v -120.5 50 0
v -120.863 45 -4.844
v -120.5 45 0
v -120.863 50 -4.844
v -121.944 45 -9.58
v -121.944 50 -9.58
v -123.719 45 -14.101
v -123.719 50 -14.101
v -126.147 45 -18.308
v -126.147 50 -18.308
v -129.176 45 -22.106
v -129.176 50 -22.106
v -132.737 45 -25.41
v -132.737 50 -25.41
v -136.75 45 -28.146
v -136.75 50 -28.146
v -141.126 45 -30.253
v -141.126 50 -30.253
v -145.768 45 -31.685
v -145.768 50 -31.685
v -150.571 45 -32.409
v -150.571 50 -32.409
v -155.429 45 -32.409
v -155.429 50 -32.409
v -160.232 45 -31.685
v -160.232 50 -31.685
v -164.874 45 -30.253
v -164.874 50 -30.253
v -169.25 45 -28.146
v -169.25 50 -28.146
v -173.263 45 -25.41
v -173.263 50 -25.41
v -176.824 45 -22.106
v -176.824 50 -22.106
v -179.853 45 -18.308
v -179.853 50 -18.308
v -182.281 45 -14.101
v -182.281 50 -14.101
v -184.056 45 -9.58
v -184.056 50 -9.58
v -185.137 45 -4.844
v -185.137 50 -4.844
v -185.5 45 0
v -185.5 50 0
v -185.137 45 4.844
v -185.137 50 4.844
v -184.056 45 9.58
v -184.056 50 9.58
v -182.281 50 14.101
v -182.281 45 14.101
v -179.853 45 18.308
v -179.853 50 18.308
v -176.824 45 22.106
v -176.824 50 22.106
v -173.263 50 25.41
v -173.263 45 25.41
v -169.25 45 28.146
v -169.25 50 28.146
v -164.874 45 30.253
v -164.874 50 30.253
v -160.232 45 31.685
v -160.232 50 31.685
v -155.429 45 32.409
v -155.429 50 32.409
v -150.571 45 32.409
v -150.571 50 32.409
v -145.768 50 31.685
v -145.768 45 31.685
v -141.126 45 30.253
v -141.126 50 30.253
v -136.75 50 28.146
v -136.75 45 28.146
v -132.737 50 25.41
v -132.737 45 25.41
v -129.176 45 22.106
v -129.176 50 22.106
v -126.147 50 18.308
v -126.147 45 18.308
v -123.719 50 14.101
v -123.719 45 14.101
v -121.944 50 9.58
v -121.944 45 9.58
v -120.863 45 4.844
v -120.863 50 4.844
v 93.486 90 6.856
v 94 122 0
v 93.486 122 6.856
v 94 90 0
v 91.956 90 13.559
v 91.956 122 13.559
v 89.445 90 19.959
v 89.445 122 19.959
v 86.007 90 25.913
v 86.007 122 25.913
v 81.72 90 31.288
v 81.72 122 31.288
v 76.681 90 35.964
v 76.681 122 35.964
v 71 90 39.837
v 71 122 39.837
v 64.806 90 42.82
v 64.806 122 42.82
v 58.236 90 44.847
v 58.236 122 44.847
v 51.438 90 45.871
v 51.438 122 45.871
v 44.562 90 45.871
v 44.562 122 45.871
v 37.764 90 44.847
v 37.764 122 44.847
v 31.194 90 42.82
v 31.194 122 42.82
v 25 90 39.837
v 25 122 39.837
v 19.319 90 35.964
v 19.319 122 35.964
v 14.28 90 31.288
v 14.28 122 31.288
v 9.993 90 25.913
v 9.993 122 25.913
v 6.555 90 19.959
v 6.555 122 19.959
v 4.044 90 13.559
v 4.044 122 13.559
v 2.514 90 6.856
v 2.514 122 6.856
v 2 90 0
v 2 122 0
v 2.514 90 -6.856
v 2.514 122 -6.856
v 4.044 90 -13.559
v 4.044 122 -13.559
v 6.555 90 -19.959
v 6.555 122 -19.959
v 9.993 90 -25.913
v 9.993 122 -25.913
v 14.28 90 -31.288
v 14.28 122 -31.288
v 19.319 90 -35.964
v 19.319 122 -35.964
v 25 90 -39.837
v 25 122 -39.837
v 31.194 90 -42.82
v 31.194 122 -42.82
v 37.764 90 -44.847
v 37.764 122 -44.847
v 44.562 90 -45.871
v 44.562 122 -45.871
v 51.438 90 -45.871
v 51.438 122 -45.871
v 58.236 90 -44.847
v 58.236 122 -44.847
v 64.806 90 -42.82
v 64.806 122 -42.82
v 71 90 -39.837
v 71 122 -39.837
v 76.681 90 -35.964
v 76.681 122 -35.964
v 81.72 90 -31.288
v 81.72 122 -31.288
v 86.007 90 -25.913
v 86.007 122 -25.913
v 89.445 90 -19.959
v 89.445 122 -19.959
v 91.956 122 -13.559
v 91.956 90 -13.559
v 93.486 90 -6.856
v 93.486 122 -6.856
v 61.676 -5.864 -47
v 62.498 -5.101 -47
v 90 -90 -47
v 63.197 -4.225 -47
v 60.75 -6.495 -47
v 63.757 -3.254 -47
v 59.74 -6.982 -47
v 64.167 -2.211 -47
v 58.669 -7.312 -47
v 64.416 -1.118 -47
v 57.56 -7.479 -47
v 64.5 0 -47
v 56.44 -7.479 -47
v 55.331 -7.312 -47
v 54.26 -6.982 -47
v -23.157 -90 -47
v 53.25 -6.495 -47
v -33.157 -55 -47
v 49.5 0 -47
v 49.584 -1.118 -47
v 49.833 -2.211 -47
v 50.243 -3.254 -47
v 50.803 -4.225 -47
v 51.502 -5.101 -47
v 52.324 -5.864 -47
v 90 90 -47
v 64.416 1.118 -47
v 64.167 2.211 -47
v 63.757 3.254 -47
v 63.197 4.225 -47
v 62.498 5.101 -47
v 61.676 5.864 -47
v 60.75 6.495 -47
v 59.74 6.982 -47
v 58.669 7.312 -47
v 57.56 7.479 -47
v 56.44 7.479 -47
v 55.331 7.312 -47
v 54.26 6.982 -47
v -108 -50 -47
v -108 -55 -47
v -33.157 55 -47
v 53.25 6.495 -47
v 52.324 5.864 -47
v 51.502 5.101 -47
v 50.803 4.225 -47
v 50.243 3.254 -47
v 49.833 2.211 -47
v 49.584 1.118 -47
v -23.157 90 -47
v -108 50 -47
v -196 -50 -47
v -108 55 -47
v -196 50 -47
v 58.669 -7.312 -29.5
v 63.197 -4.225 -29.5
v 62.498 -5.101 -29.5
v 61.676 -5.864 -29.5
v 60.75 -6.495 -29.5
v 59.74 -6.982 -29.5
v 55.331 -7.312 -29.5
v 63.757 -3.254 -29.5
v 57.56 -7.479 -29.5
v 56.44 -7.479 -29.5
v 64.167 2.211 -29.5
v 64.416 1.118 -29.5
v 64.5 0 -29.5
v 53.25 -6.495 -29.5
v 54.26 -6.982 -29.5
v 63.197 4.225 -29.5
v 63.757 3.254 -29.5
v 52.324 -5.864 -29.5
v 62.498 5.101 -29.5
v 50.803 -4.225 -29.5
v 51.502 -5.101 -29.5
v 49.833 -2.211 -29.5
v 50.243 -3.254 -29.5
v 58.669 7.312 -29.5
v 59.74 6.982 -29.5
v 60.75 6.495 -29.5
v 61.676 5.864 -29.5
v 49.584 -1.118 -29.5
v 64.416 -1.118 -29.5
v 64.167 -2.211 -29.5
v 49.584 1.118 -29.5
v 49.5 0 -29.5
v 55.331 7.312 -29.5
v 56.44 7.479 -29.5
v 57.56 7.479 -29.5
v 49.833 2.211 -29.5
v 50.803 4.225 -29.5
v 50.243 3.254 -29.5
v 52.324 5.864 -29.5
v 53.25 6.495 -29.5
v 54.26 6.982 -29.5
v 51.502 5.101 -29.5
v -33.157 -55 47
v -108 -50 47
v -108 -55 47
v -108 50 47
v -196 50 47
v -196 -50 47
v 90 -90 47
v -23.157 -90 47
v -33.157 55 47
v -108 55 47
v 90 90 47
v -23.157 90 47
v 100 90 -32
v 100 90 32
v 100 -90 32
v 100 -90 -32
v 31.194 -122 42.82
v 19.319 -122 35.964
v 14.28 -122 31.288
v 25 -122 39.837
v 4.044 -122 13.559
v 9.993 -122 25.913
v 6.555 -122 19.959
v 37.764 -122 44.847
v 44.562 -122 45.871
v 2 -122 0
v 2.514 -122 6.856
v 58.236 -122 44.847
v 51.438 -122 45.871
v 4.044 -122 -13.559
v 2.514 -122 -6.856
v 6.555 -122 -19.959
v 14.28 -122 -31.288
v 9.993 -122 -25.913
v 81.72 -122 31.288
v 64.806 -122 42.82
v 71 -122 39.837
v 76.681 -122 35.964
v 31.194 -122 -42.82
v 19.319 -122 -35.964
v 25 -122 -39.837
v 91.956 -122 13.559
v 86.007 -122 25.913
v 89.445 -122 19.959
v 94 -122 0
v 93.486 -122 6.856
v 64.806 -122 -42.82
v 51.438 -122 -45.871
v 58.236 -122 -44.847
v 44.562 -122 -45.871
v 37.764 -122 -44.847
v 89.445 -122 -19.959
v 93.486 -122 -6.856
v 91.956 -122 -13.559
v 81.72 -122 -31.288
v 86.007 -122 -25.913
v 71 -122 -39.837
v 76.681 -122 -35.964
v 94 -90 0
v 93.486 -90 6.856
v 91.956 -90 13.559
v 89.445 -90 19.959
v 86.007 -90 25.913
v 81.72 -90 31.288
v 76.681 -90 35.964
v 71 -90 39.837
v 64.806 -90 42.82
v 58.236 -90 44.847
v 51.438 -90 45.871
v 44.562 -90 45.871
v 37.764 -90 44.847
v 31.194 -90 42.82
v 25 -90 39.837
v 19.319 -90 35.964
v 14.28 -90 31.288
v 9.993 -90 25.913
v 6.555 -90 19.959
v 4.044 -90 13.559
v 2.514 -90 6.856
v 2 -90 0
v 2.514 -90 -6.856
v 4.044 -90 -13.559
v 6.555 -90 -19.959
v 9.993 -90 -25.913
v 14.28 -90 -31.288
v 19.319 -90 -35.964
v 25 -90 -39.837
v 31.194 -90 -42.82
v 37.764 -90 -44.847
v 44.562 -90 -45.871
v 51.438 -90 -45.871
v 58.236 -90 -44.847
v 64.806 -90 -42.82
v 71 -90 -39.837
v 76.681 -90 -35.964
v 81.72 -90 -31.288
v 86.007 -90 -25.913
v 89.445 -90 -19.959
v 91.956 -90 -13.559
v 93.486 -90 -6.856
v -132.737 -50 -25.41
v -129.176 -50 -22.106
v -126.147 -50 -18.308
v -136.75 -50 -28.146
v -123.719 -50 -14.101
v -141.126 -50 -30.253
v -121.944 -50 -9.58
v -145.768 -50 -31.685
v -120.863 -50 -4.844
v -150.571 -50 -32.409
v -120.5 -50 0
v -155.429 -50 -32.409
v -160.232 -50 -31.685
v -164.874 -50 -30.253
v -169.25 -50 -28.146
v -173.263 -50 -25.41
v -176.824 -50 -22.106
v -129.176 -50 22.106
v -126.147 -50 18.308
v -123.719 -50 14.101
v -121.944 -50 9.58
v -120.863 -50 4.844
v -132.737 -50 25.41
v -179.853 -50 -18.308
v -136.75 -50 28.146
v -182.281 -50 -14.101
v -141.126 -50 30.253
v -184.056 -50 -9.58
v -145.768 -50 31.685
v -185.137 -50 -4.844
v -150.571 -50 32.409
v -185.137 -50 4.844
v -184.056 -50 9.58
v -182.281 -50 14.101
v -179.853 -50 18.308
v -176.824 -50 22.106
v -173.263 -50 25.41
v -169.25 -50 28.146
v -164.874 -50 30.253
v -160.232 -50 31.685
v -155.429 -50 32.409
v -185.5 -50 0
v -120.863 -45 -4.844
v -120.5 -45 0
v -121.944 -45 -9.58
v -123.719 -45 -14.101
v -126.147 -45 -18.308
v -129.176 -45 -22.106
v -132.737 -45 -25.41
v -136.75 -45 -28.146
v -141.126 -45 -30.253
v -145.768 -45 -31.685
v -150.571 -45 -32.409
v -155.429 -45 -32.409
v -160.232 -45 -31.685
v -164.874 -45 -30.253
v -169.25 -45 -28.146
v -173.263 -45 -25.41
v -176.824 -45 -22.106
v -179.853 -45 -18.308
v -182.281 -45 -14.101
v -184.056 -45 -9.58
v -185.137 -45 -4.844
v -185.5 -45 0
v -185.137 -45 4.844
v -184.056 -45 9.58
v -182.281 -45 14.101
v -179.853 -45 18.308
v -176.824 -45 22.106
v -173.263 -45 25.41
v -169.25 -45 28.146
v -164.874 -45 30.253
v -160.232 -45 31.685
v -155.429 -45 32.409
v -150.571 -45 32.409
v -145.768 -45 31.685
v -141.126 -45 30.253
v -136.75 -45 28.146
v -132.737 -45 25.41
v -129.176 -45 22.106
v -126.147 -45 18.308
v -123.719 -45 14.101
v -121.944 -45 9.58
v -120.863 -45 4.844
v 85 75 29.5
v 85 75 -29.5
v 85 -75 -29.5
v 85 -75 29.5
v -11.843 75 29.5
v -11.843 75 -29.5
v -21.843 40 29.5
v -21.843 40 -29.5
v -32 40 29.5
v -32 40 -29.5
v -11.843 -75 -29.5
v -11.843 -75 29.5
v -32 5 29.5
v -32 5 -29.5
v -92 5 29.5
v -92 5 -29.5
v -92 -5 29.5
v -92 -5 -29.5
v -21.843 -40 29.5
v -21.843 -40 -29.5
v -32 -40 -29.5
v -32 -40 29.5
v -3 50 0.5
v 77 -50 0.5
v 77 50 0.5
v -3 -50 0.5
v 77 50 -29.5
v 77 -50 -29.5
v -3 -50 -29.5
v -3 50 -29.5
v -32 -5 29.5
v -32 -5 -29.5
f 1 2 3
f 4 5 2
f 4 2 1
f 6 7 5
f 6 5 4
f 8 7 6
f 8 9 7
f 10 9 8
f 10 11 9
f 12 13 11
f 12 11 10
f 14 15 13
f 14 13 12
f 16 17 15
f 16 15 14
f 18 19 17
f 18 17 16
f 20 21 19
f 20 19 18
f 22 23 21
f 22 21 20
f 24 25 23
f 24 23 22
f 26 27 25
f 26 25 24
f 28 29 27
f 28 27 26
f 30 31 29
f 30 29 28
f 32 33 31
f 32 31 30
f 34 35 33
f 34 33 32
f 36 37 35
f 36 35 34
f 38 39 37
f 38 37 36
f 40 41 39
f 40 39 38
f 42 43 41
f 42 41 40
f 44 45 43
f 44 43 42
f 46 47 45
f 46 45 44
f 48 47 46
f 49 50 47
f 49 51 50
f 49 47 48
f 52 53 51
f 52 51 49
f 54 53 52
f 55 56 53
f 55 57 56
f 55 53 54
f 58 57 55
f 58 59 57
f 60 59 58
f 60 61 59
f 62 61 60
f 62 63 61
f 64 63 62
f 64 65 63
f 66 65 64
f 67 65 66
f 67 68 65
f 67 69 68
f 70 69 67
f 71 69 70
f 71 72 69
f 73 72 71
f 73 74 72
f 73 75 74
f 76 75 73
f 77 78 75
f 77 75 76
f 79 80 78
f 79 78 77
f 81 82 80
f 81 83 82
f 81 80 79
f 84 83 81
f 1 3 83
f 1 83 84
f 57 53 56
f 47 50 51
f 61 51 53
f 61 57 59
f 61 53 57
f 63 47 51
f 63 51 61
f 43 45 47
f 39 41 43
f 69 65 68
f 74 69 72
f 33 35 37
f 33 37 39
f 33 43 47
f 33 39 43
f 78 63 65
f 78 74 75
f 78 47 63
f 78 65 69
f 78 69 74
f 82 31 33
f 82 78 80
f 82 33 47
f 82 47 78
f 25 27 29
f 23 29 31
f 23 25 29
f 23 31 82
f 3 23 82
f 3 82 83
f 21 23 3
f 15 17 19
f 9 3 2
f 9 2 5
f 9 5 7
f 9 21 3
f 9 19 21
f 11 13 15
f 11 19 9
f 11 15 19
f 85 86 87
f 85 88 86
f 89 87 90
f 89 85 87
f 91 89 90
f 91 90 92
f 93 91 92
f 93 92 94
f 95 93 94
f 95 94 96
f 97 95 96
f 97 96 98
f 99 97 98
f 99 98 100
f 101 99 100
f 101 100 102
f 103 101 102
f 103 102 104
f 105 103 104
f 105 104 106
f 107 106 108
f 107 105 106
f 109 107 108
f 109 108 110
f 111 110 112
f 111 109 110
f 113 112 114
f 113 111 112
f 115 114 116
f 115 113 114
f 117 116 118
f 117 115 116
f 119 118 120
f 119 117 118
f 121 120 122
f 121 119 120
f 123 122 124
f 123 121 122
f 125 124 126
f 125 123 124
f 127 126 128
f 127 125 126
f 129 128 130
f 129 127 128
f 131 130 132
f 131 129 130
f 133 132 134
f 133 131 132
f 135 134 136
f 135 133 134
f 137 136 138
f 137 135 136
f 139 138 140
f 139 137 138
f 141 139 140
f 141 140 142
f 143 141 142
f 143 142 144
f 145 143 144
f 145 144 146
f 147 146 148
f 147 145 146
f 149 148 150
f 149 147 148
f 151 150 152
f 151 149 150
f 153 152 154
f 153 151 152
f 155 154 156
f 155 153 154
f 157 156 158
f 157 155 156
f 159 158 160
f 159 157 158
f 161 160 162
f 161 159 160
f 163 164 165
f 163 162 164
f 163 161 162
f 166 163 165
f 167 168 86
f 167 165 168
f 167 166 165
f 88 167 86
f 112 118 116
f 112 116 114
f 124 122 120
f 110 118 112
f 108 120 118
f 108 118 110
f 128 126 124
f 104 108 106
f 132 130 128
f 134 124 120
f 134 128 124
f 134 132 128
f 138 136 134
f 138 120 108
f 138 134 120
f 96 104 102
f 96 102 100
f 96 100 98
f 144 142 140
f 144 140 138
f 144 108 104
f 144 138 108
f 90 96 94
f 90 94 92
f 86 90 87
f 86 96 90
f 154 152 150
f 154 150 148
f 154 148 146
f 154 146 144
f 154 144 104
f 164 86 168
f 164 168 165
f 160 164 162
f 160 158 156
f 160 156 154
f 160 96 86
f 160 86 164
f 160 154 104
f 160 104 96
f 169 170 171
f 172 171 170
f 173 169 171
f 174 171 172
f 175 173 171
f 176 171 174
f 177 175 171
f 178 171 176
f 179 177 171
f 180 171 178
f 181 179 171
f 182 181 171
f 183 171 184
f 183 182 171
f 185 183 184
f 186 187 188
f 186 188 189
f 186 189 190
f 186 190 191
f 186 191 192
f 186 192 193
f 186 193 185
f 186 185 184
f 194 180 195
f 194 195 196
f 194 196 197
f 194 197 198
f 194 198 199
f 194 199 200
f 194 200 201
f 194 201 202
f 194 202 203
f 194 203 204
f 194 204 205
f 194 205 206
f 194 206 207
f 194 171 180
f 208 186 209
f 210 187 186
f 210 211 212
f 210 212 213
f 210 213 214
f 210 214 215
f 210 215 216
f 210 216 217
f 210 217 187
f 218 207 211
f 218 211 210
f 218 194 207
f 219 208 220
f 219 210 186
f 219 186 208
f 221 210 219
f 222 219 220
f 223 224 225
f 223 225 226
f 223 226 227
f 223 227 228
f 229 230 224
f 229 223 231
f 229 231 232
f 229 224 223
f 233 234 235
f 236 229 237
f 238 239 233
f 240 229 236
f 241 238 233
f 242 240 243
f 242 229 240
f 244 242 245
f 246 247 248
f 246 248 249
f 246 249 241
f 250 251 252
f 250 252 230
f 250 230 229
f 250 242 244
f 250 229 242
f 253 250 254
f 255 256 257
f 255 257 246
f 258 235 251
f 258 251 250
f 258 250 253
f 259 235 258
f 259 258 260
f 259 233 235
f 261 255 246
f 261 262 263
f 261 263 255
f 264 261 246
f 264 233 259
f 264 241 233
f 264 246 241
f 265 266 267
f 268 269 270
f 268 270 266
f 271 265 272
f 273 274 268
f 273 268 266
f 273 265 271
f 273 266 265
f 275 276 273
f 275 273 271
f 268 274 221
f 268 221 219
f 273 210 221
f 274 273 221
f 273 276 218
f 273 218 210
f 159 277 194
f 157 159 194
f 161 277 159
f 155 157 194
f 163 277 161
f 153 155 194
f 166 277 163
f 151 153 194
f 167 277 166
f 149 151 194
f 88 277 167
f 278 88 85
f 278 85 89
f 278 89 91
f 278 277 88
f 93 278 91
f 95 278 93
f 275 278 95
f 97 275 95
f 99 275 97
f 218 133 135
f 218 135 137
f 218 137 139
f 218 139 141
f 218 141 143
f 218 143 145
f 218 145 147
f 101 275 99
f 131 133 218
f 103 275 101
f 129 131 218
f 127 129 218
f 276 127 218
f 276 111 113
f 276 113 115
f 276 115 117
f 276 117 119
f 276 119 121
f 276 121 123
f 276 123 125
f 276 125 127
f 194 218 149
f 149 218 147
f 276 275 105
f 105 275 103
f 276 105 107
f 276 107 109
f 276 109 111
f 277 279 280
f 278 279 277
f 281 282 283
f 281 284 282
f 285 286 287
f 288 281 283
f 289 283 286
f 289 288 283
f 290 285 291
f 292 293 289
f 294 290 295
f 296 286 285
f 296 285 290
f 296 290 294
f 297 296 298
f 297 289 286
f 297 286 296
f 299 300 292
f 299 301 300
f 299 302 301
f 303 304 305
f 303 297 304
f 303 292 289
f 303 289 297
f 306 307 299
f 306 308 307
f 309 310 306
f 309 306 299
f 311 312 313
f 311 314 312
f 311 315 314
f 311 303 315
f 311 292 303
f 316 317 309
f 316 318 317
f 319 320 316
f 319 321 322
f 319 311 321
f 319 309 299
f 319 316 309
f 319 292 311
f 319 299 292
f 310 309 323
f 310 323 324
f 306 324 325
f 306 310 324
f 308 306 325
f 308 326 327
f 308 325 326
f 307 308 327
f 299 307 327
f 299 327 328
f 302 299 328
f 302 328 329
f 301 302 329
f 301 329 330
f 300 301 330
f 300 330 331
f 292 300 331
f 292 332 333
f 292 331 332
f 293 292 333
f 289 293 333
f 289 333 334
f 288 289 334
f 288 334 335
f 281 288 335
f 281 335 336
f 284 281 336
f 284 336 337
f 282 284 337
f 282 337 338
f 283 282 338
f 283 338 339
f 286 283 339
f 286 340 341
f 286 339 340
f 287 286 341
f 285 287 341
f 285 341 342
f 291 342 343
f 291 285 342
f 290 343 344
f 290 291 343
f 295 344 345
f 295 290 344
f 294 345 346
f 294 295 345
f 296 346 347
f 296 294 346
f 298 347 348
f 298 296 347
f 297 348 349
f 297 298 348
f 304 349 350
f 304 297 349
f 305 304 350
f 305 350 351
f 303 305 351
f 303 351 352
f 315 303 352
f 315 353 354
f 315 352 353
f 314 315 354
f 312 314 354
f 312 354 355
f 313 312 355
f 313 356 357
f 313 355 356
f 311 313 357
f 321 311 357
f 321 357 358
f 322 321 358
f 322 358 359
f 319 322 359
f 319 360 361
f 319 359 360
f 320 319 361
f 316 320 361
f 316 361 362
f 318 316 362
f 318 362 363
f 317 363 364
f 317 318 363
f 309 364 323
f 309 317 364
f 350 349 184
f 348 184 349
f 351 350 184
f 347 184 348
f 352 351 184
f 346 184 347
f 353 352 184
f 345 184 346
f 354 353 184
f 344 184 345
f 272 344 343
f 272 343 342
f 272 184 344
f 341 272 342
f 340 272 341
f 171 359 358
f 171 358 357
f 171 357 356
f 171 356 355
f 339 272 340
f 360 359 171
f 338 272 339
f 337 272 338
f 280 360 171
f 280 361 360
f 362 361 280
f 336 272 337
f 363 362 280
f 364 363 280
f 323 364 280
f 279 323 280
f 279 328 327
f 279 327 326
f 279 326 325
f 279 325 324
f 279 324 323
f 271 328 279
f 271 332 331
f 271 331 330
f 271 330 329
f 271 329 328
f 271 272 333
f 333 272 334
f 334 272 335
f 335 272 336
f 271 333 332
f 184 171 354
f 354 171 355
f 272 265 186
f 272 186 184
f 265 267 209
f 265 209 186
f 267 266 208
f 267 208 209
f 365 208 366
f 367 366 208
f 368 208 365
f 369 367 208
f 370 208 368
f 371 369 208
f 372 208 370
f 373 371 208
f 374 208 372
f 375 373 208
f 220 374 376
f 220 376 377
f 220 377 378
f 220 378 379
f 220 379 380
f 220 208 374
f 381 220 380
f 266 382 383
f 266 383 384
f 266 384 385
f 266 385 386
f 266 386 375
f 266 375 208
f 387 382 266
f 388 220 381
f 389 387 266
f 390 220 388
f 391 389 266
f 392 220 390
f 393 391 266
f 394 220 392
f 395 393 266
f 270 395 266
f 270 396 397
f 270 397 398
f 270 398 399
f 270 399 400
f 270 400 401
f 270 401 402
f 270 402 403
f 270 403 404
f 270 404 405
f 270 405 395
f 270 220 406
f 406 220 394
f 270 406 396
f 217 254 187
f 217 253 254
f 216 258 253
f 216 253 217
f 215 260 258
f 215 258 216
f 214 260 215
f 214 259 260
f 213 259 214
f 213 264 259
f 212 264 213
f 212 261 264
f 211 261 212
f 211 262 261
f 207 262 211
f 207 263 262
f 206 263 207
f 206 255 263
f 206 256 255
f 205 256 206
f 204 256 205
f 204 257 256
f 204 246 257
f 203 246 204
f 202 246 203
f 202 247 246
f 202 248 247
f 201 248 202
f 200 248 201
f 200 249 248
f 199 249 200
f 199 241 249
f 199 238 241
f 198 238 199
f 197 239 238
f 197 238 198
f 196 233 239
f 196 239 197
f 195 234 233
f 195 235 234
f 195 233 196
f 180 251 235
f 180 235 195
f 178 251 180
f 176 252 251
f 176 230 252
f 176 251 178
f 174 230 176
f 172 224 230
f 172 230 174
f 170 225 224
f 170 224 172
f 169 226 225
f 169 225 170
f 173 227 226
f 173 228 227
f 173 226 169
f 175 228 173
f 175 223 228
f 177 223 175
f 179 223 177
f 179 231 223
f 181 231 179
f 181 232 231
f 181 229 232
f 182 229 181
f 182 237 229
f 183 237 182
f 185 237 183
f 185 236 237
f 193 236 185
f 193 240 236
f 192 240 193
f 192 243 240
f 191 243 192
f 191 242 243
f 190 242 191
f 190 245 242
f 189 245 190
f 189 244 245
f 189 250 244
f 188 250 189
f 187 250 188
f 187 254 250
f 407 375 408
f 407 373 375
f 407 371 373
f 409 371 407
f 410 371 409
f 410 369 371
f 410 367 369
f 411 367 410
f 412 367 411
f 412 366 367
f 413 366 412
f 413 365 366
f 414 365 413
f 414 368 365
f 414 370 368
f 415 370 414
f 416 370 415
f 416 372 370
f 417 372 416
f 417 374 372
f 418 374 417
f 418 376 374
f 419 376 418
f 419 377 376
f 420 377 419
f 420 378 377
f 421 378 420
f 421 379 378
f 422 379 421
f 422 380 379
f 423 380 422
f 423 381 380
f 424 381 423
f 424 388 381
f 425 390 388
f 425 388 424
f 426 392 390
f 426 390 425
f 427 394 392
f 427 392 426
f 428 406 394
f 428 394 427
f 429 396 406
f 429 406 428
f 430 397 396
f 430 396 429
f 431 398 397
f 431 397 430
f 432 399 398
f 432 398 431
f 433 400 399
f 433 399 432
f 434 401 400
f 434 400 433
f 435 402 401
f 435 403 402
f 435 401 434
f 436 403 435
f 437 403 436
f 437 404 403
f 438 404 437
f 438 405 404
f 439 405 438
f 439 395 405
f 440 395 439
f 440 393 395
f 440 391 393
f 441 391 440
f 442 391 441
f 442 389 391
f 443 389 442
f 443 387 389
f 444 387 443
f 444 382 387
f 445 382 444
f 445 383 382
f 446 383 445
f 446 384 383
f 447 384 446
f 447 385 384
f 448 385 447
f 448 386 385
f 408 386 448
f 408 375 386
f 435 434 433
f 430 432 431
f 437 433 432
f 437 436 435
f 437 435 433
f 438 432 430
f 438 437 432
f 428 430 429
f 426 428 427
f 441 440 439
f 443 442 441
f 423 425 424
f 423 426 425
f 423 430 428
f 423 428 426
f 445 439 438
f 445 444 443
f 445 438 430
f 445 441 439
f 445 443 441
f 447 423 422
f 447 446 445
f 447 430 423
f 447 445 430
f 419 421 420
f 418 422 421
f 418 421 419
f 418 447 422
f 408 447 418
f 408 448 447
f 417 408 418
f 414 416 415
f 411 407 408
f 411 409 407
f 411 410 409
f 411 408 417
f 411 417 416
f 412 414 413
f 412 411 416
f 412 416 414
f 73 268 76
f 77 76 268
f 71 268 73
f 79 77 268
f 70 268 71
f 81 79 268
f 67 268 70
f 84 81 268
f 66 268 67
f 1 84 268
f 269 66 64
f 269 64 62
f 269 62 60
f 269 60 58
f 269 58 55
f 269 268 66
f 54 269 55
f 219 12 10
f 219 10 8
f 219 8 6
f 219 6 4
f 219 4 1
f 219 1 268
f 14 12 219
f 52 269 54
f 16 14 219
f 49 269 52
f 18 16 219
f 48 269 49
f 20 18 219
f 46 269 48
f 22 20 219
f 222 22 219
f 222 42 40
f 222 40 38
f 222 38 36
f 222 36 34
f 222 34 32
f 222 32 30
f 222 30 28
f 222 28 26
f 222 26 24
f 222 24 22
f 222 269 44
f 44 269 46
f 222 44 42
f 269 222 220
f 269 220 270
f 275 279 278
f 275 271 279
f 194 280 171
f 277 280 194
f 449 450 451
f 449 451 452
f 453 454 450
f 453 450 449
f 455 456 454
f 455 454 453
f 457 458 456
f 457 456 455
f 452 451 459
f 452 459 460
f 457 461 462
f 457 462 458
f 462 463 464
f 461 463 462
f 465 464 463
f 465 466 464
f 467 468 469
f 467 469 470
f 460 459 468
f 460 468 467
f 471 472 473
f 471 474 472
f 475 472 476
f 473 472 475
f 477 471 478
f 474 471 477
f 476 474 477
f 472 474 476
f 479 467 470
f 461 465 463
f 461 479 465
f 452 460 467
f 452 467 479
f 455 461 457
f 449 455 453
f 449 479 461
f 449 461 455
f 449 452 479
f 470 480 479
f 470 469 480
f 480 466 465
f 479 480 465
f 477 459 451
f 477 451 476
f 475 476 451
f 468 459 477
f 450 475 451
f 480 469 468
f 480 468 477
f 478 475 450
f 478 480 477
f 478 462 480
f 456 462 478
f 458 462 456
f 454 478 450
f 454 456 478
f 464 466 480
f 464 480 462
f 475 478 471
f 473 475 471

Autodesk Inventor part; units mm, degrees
ref_plane "YZ Plane" through (0, 0, 0) normal (1, 0, 0) x (0, 1, 0)
ref_plane "XZ Plane" through (0, 0, 0) normal (0, 1, 0) x (-1, 0, 0)
sketch "Sketch1" plane through (0, 0, 0) normal (0, 0, 1) x (1, 0, 0)
  line L0 (-100, 0) -> (100, 0) construction
  line L1 (-100, 55) -> (-100, -55)
  circle A0 centre (-57.5, 47.5) radius 2.25
  line L2 (100, -70) -> (100, 70) construction
  line L3 (-92, 0) -> (-92, 47.5) construction
  line L4 (-92, 0) -> (-92, -47.5) construction
  circle A1 centre (-92.5, 47.5) radius 2.25
  circle A2 centre (-92.5, 47.5) radius 1.25
  circle A3 centre (-57.5, 47.5) radius 1.25
  line L5 (-100, 55) -> (-33.1573, 55)
  line L6 (-33.1573, 55) -> (-23.1573, 90)
  line L7 (-23.1573, 90) -> (100, 90)
  line L8 (100, 90) -> (100, 0)
  line L9 (100, -90) -> (100, 0)
  line L10 (-23.1573, -90) -> (100, -90)
  line L11 (-33.1573, -55) -> (-23.1573, -90)
  line L12 (-100, -55) -> (-33.1573, -55)
  line L13 (85, 75) -> (-11.8427, 75)
  line L14 (-11.8427, 75) -> (-21.8427, 40)
  line L15 (-21.8427, 40) -> (-92, 40)
  line L16 (-92, -40) -> (-21.8427, -40)
  line L17 (-21.8427, -40) -> (-11.8427, -75)
  line L18 (-11.8427, -75) -> (85, -75)
  line L19 (92.5, 82.5) -> (-17.5, 82.5) construction
  line L20 (-17.5, 82.5) -> (-27.5, 47.5) construction
  line L21 (-27.5, 47.5) -> (-92.5, 47.5) construction
  line L22 (-92.5, 47.5) -> (-92.5, -47.5) construction
  line L23 (-92.5, -47.5) -> (-27.5, -47.5) construction
  line L24 (-27.5, -47.5) -> (-17.5, -82.5) construction
  line L25 (-17.5, -82.5) -> (92.5, -82.5) construction
  line L26 (92.5, -82.5) -> (92.5, 0) construction
  line L27 (92.5, 0) -> (92.5, 82.5) construction
  line L28 (85, 75) -> (85, -75)
  line L29 (-100, 55) -> (-108, 55)
  line L30 (-108, 55) -> (-108, -55)
  line L31 (-108, -55) -> (-100, -55)
  line L32 (-100, -55) -> (-100, 55)
  line L33 (100, 0) -> (-108, 0)
  circle A4 centre (20, 82.5) radius 1.25
  circle A5 centre (20, 82.5) radius 2.25
  circle A6 centre (80, 82.5) radius 1.25
  circle A7 centre (80, 82.5) radius 2.25
  line L34 (50, 90) -> (50, 75) construction
  circle A8 centre (-22.5, 65) radius 1.25
  circle A9 centre (-22.5, 65) radius 2.25
  line L35 (-92, 40) -> (-92, -40)
  circle A10 centre (-96, 0) radius 2.25
  circle A11 centre (-96, 0) radius 1.25
  circle A12 centre (-104, 30) radius 2.25
  circle A13 centre (-104, 30) radius 1.25
  circle A14 centre (-104, -30) radius 2.25
  circle A15 centre (-104, -30) radius 1.25
  line L36 (-104, 55) -> (-104, -55) construction
  line L37 (-32, 40) -> (-32, 5)
  line L38 (-32, 5) -> (-92, 5)
  line L39 (77, 0) -> (77, -50)
  line L40 (77, -50) -> (-3, -50)
  line L41 (-3, -50) -> (-3, 0)
  line L42 (77, -40) -> (67, -40)
  line L43 (67, -40) -> (67, -50)
  line L44 (27, -50) -> (27, -40)
  line L45 (27, -40) -> (17, -40)
  line L46 (17, -40) -> (17, -50)
  circle A16 centre (57, 0) radius 7.5
  point P0 (0, 0)
  point P1 (0, 0)
  point P2 (77, 0)
  point P3 (-3, 0)
  dimension "d0" = 110
  dimension "d1" = 8
  dimension "d2" = 200
  dimension "d15" = 15
  dimension "d17" = 7.5
  dimension "d18" = 4.5
  dimension "d19" = 2.5
  dimension "d20" = 35
  dimension "d21" = 180
  dimension "d22" = 15
  dimension "d24" = 8
  dimension "d28" = 20
  dimension "d29" = 50
  dimension "d30" = 35
  dimension "d40" = 30
  dimension "d41" = 4
  dimension "d110" = 35
  dimension "d111" = 60
  dimension "d114" = 10
  dimension "d115" = 8
  dimension "d132" = 50
  dimension "d133" = 80
  dimension "d135" = 15
  dimension "d138" = 20
  dimension "d139" = 29
  dimension "d140" = 40
  dimension "d141" = 10
  dimension "d155" = 80
sketch "Sketch6" plane through (0, 0, 0) normal (0, 0, 1) x (1, 0, 0)
  line L0 (0, -140) -> (0, 140) construction
  line L1 (60, 0) -> (340, 0) construction
  line L2 (100, -70) -> (100, 70) construction
  line L3 (300, -100) -> (100, -70)
  line L4 (300, 100) -> (100, 70)
  dimension "d146" = 300
  dimension "d147" = 100
ref_plane "Work Plane2" through (300, 100, 0) normal (-0.9889364, -0.1483405, 0) x (0.1483405, -0.9889364, 0)
sketch "Sketch7" plane through (300, 100, 0) normal (-0.9889364, -0.1483405, 0) x (0.1483405, -0.9889364, 0)
  circle A0 centre (0, 0) radius 2.5
  dimension "d150" = 5
extrude "Extrusion1" add sketch "Sketch1" along normal mid plane 94 contours L5 L6 L7 L8 L33 L28 L13 L14 L15 L35 A10 L1 | L1 L33 L30 L29 | L33 A10 L35 L16 L17 L18 L28 L9 L10 L11 L12 L1 | L1 L31 L30 L33 | A10 L33 A11 | L33 A11 A10 | A11 L33 | L33 A11 | L35 L38 L37 L15 L14 L13 L28 L33 A16 | L33 L41 L40 L39 L28 L18 L17 L16 L35 | L33 A16 L39 L42 L43 L40 L44 L45 L46 L41 | L35 L15 L37 L38 | A16 L33 | L33 A16 | L46 L45 L44 L40 | L39 L40 L43 L42 | A0 | A1 | A2 | A3 | A4 | A5 | A6 | A7 | A8 | A9 | A12 | A13 | A14 | A15
extrude "Extrusion2" cut sketch "Sketch1" along normal mid plane 59 contours L35 L38 L37 L15 L14 L13 L28 L33 A16 | L33 L41 L40 L39 L28 L18 L17 L16 L35 | L33 A16 L39 L42 L43 L40 L44 L45 L46 L41 | L35 L15 L37 L38 | A16 L33 | L33 A16 | L46 L45 L44 L40 | L39 L40 L43 L42
sketch "Sketch2" plane through (-108, -55, 47) normal (-1, 0, 0) x (0, 0, 1)
  line L0 (0, -35) -> (0, 145) projected
  line L1 (-94, 5) -> (0, 5)
  line L2 (0, 5) -> (0, 105)
  line L3 (0, 105) -> (-94, 105)
  line L4 (-94, 105) -> (-94, 5)
  line L5 (-94, 5) -> (0, 105) construction
  line L6 (0, 5) -> (-94, 105) construction
  line L7 (-94, 32) -> (0, 32)
  line L8 (0, 32) -> (0, 78)
  line L9 (0, 78) -> (-94, 78)
  line L10 (-94, 78) -> (-94, 32)
  line L11 (-94, 32) -> (0, 78) construction
  line L12 (0, 32) -> (-94, 78) construction
  point P0 (-47, 55)
  dimension "d52" = 100
  dimension "d55" = 46
extrude "Extrusion3" add sketch "Sketch2" along normal blind 88
extrude "Extrusion4" [suppressed]
sketch "Sketch3" plane through (0, 0, 0) normal (0, 1, 0) x (-1, 0, 0)
  circle A0 centre (153, 0) radius 32.5
  line L0 (108, -47) -> (108, 47) projected
  line L1 (108, -47) -> (108, 47) projected
  line L2 (108, -47) -> (108, 47) construction
  line L3 (108, 0) -> (245.8238, 0) construction
  circle A1 centre (153, 0) radius 40
  line L4 (183.942, 9.942) -> (196, 22)
  line L5 (196, 22) -> (196, -22)
  line L6 (196, -22) -> (183.942, -9.942)
  line L7 (196, 47) -> (196, -47) projected
  line L8 (204, 47) -> (224, 20)
  line L9 (224, 20) -> (224, 47)
  line L10 (224, 47) -> (204, 47)
  line L11 (196, -47) -> (224, -47)
  line L12 (204, -47) -> (224, -20)
  line L13 (224, -20) -> (224, -47)
  line L14 (-100, 47) -> (23.1573, 47) projected
  line L15 (-100, 47) -> (-100, 32)
  line L16 (-100, 32) -> (-90, 47)
  line L17 (-100, -47) -> (23.1573, -47)
  line L18 (-100, -47) -> (-100, -32)
  line L19 (-100, -32) -> (-90, -47)
  circle A2 centre (-48, 0) radius 46
  line L20 (-100, -47) -> (-100, 47) projected
  circle A3 centre (-48, 0) radius 32.5
  line L21 (-4.8723, -16) -> (13.1277, -16)
  line L22 (13.1277, -16) -> (13.1277, 16)
  line L23 (13.1277, 16) -> (-4.8723, 16)
  point P0 (0, 0)
  point P1 (189.7631, 15.7631)
  point P2 (189.7631, -15.7631)
  dimension "d58" = 45
  dimension "d59" = 65
  dimension "d62" = 80
  dimension "d64" = 44
  dimension "d69" = 20
  dimension "d70" = 27
  dimension "d80" = 15
  dimension "d81" = 10
  dimension "d87" = 52
  dimension "d88" = 92
  dimension "d116" = 65
  dimension "d121" = 32
  dimension "d122" = 18
  dimension "d134" = 8
  dimension "d143" = 48
extrude "Extrusion15" cut sketch "Sketch3" along normal through all both and the other way through all contours L10 L9 L8 | L12 L13 L11 | L14 L16 L15 | L18 L19 L17
extrude "Extrusion16" add sketch "Sketch1" along normal through all both and the other way through all contours L35 L15 L37 L38
extrude "Extrusion14" add sketch "Sketch3" against normal blind 32 from surface at -90 contours A2 | A3
extrude "Extrusion17" [suppressed]
extrude "Extrusion18" cut sketch "Sketch3" along normal blind 5 from surface at -50 contours A0
extrude "Extrusion21" cut sketch "Sketch1" along normal up to surface (17.5 mm away) from surface at -47 contours A16 L33 | L33 A16
extrude "Extrusion22" add sketch "Sketch1" along normal blind 30 from surface at -29.5 contours L33 A16 L39 L42 L43 L40 L44 L45 L46 L41 | L33 A16 | L46 L45 L44 L40 | L39 L40 L43 L42 picked at (58.4928, -2.6557)
extrude "Extrusion24" [suppressed]
mirror "Mirror2" about plane through (0, 0, 0) normal (0, 1, 0) of "Extrusion14", "Extrusion16", "Extrusion18", "Extrusion22"
equation "\"d17\" = 0.5 * d15"
equation "\"d21\" = d47"
equation "\"d45\" = 124"
equation "\"d46\" = 12"
equation "\"d47\" = 180"
